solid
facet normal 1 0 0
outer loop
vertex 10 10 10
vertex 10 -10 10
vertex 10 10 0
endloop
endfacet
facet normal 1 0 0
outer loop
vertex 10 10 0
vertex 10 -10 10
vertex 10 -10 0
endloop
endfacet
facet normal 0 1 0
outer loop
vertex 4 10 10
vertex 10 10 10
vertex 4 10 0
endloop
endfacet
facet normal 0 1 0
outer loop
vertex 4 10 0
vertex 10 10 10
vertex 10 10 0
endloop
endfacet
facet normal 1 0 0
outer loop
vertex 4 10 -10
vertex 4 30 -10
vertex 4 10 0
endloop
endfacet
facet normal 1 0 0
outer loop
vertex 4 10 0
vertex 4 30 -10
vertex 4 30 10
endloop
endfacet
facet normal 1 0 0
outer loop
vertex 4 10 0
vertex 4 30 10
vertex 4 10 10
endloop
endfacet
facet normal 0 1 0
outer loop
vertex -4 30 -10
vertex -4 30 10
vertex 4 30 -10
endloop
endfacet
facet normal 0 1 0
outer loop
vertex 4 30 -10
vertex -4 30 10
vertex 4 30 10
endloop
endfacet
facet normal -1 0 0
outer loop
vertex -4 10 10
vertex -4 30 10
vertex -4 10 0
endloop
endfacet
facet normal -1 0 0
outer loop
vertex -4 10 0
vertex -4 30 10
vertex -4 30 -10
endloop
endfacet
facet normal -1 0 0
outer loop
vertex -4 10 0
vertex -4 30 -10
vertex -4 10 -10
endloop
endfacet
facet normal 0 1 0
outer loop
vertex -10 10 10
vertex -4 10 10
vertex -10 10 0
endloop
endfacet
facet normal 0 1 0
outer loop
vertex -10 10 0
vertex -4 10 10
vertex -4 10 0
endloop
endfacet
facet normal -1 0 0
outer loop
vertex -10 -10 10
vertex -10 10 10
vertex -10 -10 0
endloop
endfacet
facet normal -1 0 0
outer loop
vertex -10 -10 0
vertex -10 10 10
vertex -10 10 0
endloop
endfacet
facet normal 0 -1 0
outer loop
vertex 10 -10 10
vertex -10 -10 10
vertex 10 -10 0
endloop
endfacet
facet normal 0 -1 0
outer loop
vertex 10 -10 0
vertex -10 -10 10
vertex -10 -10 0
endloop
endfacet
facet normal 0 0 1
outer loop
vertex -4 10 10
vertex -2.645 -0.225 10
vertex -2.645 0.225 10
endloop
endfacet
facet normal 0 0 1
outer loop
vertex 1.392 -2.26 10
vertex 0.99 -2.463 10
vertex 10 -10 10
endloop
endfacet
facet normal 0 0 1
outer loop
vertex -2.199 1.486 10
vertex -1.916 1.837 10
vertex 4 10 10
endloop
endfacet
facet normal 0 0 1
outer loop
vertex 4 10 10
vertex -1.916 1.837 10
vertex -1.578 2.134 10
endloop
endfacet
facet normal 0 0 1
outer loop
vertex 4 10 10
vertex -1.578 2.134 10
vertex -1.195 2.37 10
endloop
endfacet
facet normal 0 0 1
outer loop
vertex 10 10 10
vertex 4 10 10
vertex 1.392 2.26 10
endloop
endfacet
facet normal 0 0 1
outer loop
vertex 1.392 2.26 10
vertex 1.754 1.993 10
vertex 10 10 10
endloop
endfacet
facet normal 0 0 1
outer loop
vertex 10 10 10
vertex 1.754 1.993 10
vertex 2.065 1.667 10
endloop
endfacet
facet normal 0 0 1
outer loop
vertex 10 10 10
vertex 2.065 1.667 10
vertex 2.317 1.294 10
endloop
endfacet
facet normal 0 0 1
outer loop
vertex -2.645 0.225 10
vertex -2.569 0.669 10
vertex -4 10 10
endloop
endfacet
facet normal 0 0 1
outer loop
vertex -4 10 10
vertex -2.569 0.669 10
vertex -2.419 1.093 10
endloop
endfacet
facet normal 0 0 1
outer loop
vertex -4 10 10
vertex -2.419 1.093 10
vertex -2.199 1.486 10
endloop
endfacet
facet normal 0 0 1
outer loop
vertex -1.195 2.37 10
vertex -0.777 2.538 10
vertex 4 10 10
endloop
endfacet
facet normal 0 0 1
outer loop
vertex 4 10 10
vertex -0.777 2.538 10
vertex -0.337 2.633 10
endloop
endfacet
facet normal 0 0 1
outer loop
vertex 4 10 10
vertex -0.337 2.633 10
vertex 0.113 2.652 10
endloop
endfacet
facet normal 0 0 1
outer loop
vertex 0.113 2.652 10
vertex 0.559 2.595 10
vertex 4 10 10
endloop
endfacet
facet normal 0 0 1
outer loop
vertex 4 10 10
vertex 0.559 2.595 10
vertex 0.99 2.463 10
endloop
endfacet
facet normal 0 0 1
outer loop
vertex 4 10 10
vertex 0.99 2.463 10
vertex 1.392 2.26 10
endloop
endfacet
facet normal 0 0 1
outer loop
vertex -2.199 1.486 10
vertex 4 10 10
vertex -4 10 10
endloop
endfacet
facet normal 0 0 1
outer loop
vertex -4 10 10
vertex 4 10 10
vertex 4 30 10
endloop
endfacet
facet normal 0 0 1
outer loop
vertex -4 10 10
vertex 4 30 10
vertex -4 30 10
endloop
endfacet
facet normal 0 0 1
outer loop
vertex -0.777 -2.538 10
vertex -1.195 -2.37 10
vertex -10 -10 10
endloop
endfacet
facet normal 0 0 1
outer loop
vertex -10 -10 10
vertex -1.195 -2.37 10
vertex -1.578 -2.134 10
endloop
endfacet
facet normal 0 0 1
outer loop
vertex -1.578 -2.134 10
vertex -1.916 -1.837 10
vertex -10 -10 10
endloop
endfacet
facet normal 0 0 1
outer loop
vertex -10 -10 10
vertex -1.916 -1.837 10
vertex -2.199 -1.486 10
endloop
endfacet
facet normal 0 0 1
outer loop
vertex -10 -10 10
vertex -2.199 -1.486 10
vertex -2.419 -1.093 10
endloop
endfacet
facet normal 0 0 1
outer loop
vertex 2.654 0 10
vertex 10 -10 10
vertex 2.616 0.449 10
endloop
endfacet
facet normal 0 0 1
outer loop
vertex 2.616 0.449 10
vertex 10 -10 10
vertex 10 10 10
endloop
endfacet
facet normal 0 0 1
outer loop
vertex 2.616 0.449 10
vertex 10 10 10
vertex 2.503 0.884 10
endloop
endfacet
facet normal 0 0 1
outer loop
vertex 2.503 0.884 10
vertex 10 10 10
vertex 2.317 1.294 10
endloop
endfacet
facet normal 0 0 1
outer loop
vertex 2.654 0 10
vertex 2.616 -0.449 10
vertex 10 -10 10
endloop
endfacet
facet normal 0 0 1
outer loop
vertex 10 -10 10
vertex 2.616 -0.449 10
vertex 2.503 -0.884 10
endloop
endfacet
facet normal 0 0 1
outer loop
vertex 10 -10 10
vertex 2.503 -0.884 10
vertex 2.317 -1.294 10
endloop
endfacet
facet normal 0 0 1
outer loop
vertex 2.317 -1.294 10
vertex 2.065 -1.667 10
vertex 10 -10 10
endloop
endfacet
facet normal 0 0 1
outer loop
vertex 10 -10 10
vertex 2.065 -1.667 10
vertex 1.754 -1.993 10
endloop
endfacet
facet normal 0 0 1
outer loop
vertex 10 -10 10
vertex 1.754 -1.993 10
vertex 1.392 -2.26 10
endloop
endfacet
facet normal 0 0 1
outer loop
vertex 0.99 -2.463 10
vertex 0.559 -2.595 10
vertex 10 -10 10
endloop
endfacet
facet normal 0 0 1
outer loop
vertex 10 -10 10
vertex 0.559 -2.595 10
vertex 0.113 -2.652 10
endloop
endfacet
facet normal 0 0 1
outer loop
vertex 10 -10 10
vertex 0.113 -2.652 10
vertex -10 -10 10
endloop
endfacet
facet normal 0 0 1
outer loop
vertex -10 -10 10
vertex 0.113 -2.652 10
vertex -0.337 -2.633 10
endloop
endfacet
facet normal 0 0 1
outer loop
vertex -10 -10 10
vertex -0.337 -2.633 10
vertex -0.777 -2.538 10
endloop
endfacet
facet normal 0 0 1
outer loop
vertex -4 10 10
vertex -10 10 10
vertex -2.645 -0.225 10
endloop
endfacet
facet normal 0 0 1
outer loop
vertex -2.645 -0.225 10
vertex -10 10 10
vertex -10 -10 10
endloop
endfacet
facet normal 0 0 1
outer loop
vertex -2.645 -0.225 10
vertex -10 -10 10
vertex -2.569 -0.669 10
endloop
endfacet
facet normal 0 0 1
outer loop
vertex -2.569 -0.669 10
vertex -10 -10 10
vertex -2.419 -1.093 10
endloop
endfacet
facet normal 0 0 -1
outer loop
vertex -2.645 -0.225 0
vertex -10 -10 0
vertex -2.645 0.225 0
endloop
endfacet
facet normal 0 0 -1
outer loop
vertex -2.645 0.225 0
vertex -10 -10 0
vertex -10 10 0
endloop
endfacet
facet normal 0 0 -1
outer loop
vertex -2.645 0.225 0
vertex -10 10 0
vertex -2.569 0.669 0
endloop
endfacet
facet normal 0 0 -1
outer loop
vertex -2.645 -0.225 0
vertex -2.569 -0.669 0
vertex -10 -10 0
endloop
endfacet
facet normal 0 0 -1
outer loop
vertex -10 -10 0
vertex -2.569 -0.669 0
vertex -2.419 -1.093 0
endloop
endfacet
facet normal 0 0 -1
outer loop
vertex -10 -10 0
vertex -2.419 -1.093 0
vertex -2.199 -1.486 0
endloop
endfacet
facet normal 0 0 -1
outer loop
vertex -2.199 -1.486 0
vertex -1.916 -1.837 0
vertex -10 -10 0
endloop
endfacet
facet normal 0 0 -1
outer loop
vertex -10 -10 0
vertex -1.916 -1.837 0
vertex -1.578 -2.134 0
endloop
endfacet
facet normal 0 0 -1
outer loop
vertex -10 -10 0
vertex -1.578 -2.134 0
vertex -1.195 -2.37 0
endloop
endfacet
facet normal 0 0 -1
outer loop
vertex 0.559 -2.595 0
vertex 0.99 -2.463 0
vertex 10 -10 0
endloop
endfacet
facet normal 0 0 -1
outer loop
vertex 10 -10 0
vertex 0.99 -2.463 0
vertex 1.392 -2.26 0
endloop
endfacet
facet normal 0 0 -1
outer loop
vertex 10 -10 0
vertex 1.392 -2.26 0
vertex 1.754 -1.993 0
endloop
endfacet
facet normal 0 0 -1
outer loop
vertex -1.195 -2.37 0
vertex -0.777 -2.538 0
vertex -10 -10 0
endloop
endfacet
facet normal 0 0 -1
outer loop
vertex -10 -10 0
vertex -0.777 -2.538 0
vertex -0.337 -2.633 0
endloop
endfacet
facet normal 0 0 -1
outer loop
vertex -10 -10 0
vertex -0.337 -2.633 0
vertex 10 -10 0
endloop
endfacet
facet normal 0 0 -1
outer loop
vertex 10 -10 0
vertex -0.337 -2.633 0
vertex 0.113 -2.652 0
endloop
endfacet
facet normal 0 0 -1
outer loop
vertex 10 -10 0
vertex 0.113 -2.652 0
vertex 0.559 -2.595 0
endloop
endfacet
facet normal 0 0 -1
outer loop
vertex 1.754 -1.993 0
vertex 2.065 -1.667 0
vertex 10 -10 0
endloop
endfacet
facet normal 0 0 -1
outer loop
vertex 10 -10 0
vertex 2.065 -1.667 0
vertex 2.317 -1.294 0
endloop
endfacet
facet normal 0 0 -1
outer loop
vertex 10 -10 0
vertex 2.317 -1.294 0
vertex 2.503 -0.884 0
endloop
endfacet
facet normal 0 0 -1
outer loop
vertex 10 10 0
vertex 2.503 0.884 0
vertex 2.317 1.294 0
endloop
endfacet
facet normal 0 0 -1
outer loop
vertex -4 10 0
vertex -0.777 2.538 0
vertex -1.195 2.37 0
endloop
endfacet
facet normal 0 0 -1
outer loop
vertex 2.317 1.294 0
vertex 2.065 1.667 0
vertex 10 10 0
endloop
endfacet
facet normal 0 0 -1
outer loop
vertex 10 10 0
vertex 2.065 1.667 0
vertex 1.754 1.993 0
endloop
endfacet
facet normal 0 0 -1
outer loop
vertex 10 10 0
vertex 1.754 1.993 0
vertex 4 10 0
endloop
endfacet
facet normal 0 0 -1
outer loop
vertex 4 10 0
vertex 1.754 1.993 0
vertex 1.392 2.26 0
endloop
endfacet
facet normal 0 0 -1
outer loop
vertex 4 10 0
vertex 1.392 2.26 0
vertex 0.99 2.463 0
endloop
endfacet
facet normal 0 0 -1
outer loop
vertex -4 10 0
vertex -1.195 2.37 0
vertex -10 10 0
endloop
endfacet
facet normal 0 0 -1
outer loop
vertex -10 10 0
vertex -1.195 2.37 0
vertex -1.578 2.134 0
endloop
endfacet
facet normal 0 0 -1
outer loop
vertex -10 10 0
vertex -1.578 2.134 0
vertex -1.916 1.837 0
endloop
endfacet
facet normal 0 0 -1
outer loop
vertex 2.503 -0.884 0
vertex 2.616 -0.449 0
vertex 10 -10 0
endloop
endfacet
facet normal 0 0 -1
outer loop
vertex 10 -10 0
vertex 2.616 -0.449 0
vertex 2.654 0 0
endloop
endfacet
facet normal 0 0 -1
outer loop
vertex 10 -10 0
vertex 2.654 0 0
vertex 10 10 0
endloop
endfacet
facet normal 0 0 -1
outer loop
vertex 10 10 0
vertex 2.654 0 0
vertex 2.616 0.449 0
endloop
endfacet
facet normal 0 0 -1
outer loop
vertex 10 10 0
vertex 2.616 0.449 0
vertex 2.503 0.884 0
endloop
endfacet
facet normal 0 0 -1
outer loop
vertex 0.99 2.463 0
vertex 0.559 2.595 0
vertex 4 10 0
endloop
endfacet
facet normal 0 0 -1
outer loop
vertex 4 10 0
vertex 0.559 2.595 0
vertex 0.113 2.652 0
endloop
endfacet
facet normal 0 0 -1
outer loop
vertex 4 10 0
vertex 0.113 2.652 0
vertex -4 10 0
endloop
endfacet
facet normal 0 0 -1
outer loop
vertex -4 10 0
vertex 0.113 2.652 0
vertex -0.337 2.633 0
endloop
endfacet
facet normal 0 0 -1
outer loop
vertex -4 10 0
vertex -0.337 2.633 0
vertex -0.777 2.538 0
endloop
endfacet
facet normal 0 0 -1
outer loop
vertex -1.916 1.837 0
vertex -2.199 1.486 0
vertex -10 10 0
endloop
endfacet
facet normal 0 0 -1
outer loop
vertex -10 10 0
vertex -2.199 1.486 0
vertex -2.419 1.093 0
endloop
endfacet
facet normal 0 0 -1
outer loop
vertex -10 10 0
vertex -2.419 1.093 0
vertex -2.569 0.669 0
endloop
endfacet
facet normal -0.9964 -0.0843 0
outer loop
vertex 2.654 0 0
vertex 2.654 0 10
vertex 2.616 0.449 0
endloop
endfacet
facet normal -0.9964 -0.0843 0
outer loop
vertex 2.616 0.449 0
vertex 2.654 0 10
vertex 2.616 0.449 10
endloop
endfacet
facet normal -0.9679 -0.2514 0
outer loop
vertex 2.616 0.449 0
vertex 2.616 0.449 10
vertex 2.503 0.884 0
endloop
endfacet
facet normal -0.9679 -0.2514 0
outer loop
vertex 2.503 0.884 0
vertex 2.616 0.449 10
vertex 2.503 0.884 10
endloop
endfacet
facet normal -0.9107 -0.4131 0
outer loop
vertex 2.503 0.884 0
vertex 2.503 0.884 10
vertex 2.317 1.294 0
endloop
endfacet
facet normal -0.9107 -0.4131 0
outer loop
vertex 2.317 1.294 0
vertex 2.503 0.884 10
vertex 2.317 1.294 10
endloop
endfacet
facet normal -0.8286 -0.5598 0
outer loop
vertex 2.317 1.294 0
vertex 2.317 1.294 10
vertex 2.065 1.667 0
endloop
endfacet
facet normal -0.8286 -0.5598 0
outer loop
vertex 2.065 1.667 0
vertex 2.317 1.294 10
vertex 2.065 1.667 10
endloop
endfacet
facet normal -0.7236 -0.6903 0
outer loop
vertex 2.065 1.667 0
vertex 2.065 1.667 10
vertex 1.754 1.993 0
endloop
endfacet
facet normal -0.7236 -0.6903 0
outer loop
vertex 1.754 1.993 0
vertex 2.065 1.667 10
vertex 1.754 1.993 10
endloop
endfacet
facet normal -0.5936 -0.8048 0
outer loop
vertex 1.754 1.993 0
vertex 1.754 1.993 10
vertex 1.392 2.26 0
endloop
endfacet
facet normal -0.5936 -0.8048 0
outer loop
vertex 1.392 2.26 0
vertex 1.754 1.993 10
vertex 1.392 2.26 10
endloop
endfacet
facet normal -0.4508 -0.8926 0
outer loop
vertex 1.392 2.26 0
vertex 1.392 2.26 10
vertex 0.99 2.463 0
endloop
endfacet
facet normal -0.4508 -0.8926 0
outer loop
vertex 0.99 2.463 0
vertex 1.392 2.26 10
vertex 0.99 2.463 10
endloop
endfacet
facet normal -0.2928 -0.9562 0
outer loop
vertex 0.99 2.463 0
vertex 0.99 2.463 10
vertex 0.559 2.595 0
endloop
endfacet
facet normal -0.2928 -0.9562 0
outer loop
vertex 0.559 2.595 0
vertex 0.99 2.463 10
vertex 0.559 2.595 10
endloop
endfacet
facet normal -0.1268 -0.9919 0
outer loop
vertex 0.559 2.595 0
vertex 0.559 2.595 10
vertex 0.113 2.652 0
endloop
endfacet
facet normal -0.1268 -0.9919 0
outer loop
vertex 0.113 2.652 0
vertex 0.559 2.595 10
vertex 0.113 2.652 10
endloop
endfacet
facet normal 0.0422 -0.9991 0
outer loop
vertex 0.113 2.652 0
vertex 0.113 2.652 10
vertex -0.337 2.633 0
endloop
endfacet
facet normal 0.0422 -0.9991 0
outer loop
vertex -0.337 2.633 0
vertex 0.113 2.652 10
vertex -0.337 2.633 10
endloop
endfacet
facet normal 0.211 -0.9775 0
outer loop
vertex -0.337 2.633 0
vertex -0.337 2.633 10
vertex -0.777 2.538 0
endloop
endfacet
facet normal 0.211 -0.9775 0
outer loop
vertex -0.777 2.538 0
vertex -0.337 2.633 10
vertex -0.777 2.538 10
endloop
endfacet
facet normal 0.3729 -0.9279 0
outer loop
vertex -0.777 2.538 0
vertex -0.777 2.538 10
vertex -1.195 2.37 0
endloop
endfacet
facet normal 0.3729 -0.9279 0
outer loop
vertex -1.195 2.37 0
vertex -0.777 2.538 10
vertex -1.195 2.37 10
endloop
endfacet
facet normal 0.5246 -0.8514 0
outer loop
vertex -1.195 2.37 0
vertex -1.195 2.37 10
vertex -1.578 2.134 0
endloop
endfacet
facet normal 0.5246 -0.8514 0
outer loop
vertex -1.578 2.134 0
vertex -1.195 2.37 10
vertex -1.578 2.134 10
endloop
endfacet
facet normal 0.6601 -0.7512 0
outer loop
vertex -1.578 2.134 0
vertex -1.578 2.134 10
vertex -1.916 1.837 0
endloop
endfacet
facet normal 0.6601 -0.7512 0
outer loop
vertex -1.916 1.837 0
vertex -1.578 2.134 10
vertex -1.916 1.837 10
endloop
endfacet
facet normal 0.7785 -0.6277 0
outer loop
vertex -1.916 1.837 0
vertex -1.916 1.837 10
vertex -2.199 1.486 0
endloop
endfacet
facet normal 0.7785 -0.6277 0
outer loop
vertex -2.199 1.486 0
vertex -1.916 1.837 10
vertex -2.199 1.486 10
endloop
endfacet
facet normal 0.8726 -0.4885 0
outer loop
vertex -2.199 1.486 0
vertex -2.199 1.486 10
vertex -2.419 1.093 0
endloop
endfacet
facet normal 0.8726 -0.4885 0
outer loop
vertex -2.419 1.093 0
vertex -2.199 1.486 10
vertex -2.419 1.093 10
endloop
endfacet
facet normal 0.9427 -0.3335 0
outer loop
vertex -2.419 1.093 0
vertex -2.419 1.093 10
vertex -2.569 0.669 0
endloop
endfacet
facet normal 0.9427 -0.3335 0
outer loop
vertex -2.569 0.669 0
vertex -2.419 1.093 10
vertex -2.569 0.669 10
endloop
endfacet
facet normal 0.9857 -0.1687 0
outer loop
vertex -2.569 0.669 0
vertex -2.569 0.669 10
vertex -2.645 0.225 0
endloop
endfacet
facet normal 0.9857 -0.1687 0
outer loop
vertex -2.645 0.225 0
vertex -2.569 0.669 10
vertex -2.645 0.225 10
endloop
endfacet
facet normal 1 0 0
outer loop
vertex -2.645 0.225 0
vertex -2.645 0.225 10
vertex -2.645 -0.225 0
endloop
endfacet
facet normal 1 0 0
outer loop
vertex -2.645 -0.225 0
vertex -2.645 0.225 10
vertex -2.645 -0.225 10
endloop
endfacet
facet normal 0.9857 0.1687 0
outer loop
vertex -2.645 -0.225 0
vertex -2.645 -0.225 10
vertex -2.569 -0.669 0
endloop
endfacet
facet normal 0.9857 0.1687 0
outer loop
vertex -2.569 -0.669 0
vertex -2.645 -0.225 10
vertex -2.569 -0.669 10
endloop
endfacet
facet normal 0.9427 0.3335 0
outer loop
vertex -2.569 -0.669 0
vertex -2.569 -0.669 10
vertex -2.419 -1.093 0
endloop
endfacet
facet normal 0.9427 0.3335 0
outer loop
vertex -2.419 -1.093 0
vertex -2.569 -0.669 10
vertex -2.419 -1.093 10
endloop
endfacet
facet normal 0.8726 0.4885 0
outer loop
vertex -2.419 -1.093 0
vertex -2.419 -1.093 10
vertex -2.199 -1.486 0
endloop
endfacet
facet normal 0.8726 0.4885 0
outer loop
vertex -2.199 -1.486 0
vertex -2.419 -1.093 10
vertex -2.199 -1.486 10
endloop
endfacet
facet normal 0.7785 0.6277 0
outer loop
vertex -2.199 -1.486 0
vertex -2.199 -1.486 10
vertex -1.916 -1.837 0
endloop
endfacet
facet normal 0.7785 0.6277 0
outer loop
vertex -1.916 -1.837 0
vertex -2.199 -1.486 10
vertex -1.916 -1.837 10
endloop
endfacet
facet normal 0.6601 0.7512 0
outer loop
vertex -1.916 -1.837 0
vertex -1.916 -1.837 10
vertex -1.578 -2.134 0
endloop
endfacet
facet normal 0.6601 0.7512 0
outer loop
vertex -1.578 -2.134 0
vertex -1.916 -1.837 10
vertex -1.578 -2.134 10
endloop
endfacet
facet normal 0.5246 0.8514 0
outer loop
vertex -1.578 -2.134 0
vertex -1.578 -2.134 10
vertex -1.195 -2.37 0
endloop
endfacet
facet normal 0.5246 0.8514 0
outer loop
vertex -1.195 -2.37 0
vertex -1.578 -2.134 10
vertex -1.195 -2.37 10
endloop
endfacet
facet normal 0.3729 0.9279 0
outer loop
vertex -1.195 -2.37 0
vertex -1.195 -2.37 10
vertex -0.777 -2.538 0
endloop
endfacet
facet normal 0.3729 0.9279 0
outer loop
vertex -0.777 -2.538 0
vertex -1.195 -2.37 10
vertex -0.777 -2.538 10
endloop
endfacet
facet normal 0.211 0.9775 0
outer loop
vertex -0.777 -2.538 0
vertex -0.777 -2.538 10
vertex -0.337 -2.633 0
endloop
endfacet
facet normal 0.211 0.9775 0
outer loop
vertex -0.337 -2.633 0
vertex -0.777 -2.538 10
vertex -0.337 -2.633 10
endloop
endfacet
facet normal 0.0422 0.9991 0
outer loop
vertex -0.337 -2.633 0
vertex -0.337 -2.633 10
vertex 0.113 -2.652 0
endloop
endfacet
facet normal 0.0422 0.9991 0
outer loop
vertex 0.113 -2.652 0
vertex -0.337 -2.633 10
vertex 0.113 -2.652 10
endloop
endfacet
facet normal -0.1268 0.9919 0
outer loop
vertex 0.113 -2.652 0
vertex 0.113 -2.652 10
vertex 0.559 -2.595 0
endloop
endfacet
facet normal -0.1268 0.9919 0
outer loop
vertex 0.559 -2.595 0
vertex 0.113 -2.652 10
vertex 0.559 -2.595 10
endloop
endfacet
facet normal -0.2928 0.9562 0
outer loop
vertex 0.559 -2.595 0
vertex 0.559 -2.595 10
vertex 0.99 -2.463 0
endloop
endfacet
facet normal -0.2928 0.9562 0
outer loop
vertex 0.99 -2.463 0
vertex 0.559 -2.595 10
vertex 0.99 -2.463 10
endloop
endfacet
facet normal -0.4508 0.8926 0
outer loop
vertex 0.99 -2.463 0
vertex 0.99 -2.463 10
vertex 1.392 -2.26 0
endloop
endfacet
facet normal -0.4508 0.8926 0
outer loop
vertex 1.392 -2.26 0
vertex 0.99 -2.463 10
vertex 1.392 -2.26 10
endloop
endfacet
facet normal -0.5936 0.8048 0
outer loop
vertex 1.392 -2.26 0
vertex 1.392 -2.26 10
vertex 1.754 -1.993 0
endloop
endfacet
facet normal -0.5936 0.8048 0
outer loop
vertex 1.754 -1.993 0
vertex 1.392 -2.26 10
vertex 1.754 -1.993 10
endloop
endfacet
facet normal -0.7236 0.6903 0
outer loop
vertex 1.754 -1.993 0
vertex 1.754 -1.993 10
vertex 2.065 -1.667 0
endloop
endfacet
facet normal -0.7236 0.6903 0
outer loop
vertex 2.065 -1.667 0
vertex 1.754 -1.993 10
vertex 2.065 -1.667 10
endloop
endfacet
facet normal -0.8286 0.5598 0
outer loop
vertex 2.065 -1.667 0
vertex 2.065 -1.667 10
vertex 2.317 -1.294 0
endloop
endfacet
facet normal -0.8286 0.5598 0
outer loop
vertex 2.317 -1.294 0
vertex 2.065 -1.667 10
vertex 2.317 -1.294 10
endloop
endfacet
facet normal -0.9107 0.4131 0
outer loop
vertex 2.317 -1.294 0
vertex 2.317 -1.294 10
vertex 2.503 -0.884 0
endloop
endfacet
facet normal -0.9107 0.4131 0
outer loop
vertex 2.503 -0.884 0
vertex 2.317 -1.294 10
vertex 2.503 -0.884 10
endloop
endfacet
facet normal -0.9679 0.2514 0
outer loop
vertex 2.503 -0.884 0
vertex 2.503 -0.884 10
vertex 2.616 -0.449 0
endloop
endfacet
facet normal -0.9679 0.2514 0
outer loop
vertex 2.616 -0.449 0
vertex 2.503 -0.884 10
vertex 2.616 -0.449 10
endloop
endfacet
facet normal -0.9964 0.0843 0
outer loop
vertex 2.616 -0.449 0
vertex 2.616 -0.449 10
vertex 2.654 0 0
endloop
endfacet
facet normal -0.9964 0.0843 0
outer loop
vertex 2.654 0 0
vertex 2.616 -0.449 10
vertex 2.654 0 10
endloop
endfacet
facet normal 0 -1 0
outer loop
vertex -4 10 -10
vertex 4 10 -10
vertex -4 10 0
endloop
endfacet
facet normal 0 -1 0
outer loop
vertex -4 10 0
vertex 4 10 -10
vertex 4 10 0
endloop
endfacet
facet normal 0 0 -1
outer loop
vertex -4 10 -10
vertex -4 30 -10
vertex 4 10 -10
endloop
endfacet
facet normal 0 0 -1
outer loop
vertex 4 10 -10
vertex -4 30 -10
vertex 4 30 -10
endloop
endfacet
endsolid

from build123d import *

# Parameters (mm, degrees)
BOSS_EXTRUDE1_DEPTH        = 10
F_4_0_209_DIAMETER_HOLE1_D = 5.3086
SKETCH1_3_W                = 8
SKETCH1_3_H                = 20
BOSS_EXTRUDE2_DEPTH        = 10


with BuildPart() as part:
    # Sketch1 → Boss-Extrude1 (new body)
    with BuildSketch(Plane.XY):
        Polygon((-4, 10), (-10, 10), (-10, -10), (10, -10), (10, 10), (4, 10), (4, 30), (-4, 30), align=None)
    extrude(amount=BOSS_EXTRUDE1_DEPTH)

    # #4 (0.209) Diameter Hole1 (through all)
    with Locations(Plane.XY.offset(10)):
        with Locations((0, 0)):
            Hole(F_4_0_209_DIAMETER_HOLE1_D / 2)

    # Sketch1<3> → Boss-Extrude2 (add)
    with BuildSketch(Plane.XY):
        with Locations((0, 20)):
            Rectangle(SKETCH1_3_W, SKETCH1_3_H)
    extrude(amount=-BOSS_EXTRUDE2_DEPTH)


solid = part.part
